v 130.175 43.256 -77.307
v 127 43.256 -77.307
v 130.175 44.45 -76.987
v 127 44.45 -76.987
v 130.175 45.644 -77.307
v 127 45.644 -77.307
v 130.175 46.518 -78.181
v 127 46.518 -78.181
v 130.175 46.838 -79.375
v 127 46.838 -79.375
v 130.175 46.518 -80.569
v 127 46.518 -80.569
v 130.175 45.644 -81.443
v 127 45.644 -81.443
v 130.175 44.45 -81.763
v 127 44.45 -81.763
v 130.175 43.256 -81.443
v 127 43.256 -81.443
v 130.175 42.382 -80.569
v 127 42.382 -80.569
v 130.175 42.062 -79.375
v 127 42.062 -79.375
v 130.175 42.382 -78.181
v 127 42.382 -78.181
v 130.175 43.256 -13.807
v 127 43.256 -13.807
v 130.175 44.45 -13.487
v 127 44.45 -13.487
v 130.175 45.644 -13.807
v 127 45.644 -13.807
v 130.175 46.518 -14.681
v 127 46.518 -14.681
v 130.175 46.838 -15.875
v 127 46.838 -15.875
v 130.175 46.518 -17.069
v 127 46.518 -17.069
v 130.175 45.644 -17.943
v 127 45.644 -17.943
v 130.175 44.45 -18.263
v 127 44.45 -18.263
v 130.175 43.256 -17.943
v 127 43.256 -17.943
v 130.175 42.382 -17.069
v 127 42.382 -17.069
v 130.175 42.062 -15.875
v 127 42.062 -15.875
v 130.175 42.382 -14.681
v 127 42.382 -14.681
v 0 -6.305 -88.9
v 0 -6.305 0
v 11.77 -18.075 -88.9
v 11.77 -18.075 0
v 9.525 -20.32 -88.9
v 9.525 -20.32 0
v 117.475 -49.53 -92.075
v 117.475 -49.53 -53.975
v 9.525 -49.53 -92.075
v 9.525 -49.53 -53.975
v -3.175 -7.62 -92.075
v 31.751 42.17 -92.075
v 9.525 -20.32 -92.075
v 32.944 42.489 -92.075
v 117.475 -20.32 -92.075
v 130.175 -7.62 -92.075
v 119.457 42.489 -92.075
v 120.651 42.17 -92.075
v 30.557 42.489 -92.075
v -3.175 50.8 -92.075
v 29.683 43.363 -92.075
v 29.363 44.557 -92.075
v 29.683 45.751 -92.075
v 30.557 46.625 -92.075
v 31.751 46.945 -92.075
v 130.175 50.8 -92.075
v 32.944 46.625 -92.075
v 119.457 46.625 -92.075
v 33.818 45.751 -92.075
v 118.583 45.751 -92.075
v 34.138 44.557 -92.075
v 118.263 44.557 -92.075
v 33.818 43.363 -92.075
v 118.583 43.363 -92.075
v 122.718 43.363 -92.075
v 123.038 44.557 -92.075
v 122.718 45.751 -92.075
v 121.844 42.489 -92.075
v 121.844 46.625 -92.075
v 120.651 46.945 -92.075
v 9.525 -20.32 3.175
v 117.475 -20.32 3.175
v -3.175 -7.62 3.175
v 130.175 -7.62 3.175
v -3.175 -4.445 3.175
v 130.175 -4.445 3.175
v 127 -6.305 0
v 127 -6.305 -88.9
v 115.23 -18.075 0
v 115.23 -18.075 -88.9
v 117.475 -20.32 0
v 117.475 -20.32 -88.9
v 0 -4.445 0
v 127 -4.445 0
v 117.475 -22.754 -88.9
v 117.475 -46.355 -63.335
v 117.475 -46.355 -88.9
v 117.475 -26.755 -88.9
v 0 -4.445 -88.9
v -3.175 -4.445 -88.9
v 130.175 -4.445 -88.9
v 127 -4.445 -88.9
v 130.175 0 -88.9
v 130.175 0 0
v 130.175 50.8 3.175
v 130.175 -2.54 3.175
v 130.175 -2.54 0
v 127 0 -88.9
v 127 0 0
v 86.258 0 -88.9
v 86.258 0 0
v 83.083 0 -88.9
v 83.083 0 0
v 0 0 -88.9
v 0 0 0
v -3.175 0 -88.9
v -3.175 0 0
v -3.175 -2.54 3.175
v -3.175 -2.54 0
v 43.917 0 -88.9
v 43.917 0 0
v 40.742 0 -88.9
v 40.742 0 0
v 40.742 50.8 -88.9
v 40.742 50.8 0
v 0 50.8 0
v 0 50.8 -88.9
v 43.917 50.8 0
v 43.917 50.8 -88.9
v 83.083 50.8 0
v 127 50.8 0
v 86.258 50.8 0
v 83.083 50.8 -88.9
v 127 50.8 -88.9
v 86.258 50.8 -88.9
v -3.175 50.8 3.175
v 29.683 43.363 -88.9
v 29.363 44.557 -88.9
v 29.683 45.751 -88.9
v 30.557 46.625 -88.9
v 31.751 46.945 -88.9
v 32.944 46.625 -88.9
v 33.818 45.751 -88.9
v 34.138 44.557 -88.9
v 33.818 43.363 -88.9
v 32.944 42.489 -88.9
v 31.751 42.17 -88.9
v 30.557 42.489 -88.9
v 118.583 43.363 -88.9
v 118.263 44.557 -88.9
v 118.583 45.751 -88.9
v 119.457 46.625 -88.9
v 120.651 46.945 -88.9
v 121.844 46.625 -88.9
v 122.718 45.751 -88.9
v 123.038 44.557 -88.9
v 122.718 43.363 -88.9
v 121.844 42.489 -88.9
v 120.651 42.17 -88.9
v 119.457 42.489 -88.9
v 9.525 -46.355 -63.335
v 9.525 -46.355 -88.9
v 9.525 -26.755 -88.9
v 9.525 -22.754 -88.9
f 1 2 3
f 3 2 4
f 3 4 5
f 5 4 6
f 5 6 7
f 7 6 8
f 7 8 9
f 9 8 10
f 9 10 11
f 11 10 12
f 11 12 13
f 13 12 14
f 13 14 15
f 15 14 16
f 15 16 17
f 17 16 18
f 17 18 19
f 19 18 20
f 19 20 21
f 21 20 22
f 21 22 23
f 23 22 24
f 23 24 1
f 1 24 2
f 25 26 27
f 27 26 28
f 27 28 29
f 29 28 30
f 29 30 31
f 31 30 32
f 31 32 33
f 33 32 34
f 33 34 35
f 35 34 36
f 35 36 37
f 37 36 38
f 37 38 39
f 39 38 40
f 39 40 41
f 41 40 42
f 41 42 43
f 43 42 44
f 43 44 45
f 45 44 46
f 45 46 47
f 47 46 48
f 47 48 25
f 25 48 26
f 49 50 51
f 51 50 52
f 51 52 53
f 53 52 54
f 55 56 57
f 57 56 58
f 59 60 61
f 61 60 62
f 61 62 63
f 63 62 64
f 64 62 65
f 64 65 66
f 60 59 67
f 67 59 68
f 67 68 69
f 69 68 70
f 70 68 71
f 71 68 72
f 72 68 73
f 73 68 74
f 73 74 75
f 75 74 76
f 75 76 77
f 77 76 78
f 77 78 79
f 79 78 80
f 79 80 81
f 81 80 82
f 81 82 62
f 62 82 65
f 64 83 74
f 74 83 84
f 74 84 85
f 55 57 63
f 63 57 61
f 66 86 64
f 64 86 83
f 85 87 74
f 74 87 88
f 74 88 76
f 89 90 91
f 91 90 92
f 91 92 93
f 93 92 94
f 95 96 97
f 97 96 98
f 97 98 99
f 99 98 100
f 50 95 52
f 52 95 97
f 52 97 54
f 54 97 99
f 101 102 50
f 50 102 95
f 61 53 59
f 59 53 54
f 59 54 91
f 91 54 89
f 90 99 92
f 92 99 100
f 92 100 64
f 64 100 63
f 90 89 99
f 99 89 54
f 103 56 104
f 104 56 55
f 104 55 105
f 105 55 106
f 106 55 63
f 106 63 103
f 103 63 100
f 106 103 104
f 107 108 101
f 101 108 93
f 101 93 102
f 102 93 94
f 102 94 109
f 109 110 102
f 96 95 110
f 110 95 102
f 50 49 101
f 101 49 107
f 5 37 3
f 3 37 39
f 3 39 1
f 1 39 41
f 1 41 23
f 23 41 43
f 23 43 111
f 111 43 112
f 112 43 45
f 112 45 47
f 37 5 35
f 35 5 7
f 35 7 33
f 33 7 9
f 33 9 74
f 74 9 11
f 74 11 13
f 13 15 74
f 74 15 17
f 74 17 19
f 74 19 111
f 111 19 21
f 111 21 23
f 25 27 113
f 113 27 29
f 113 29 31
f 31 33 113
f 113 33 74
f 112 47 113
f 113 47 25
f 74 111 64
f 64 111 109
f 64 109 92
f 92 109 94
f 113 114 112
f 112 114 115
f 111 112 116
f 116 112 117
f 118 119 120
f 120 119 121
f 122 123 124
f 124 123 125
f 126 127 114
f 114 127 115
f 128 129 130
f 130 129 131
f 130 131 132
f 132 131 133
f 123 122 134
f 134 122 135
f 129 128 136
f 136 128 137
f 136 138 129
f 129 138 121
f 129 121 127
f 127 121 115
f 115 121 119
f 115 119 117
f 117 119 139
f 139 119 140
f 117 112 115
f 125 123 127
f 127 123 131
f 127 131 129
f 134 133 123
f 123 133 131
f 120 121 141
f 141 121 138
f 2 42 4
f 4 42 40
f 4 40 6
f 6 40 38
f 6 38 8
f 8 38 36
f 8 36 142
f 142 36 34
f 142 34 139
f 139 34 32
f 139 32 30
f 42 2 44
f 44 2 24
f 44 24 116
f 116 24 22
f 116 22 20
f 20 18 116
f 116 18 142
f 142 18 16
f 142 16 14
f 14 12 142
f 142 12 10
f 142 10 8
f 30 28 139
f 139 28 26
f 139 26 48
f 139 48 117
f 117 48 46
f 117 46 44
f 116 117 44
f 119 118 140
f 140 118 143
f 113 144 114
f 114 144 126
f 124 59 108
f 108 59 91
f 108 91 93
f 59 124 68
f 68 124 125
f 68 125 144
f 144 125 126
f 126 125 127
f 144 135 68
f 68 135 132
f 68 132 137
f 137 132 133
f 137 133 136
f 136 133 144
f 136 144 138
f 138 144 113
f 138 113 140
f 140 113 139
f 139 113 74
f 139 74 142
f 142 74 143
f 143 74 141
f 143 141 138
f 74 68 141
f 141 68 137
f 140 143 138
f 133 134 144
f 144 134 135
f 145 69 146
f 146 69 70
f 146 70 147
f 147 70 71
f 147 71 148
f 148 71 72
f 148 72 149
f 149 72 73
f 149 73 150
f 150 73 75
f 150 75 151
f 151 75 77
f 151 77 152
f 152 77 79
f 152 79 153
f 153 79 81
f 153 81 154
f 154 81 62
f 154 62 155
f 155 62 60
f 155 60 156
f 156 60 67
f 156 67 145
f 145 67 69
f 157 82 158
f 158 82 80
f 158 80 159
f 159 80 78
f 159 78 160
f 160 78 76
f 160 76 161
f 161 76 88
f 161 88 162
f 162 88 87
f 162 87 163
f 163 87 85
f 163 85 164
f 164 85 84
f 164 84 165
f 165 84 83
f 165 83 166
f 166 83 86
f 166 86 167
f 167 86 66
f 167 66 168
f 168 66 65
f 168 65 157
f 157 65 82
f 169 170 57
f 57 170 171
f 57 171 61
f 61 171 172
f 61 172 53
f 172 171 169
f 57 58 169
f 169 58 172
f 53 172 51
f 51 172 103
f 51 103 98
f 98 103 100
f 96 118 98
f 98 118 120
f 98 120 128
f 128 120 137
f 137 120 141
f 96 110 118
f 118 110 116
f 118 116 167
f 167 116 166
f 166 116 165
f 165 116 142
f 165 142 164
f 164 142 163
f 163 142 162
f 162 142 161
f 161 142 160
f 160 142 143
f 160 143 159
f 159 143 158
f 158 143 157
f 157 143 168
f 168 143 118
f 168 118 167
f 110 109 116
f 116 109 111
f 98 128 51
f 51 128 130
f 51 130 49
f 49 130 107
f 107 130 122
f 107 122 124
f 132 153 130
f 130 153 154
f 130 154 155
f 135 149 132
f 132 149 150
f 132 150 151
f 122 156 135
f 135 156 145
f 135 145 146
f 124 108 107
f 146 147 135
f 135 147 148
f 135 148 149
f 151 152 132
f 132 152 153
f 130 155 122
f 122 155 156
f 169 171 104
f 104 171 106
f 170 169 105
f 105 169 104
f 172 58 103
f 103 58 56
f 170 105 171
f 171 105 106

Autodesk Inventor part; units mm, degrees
ref_plane "YZ Plane" through (0, 0, 0) normal (1, 0, 0) x (0, 1, 0)
ref_plane "XZ Plane" through (0, 0, 0) normal (0, 1, 0) x (-1, 0, 0)
ref_plane "XY Plane" through (0, 0, 0) normal (0, 0, 1) x (1, 0, 0)
sketch "Sketch1" plane through (0, 0, 0) normal (0, 1, 0) x (-1, 0, 0)
  line L0 (0, 0) -> (0, -88.9)
  line L1 (0, -88.9) -> (-127, -88.9)
  line L2 (-127, -88.9) -> (-127, 0)
  line L3 (-127, 0) -> (0, 0)
  line L4 (3.175, -92.075) -> (3.175, 3.175)
  line L5 (3.175, 3.175) -> (-130.175, 3.175)
  line L6 (-130.175, 3.175) -> (-130.175, -92.075)
  line L7 (-130.175, -92.075) -> (3.175, -92.075)
  line L8 (0, 0) -> (0, -88.9)
  line L9 (0, -88.9) -> (-40.7416, -88.9)
  line L10 (-40.7416, -88.9) -> (-40.7416, 0)
  line L11 (-40.7416, 0) -> (0, 0)
  line L12 (-40.7416, 0) -> (-40.7416, -88.9)
  line L13 (-40.7416, -88.9) -> (-43.9166, -88.9)
  line L14 (-43.9166, -88.9) -> (-43.9166, 0)
  line L15 (-43.9166, 0) -> (-40.7416, 0)
  line L16 (-127, -88.9) -> (-127, 0)
  line L17 (-127, 0) -> (-86.2584, 0)
  line L18 (-86.2584, 0) -> (-86.2584, -88.9)
  line L19 (-86.2584, -88.9) -> (-127, -88.9)
  line L20 (-86.2584, 0) -> (-86.2584, -88.9)
  line L21 (-86.2584, -88.9) -> (-83.0834, -88.9)
  line L22 (-83.0834, -88.9) -> (-83.0834, 0)
  line L23 (-83.0834, 0) -> (-86.2584, 0)
  dimension "d0" = 88.9
  dimension "d1" = 127
  dimension "d2" = 3.175
  dimension "d3" = 40.7416
  dimension "d4" = 3.175
  dimension "d5" = 40.7416
  dimension "d6" = 3.175
extrude "Extrusion1" add sketch "Sketch1" along normal blind 50.8 contours L10 L1 L14 L3 | L22 L1 L18 L3 | L7 L6 L5 L4
sketch "Sketch2" plane through (0, 0, 0) normal (0, -1, 0) x (1, 0, 0)
  line L0 (-3.175, 3.175) -> (130.175, 3.175) projected
  line L1 (-3.175, 3.175) -> (130.175, 3.175)
  line L2 (130.175, 3.175) -> (130.175, 0)
  line L3 (130.175, 0) -> (-3.175, 0)
  line L4 (-3.175, 0) -> (-3.175, 3.175)
  point P0 (0, 0)
extrude "Extrusion2" add sketch "Sketch2" along normal blind 2.54
sketch "Sketch3" plane through (0, 0, 0) normal (0, -1, 0) x (1, 0, 0)
  line L0 (130.175, -92.075) -> (-3.175, -92.075) projected
  line L1 (-3.175, -92.075) -> (130.175, -92.075)
  line L2 (130.175, -92.075) -> (130.175, -88.9)
  line L3 (130.175, -88.9) -> (-3.175, -88.9)
  line L4 (-3.175, -88.9) -> (-3.175, -92.075)
  point P0 (0, 0)
  dimension "d11" = 3.175
extrude "Extrusion3" add sketch "Sketch3" along normal blind 7.62
sketch "Sketch4" plane through (0, -7.62, 0) normal (0, -1, 0) x (1, 0, 0)
  line L0 (130.175, -92.075) -> (-3.175, -92.075) projected
  line L1 (-3.175, -92.075) -> (130.175, -92.075)
  line L2 (130.175, -92.075) -> (130.175, 3.175)
  line L3 (130.175, 3.175) -> (-3.175, 3.175)
  line L4 (-3.175, 3.175) -> (-3.175, -92.075)
  line L5 (0, 0) -> (127, 0)
  line L6 (127, 0) -> (127, -88.9)
  line L7 (127, -88.9) -> (0, -88.9)
  line L8 (0, -88.9) -> (0, 0)
  point P0 (0, 0)
extrude "Extrusion4" add sketch "Sketch4" against normal blind 3.175
sketch "Sketch9" plane through (-3.175, -7.62, 3.175) normal (0, 0, 1) x (1, 0, 0)
  line L0 (0, 58.42) -> (0, 0) construction
  line L1 (0, 0) -> (0, -12.7) construction
  line L2 (0, -12.7) -> (0, 0) construction
  line L3 (0, -12.7) -> (12.7, -12.7) construction
  line L4 (0, 0) -> (133.35, 0) construction
  line L5 (133.35, 0) -> (133.35, -12.7) construction
  line L6 (133.35, -12.7) -> (120.65, -12.7) construction
  line L7 (0, 0) -> (12.7, -12.7)
  line L8 (12.7, -12.7) -> (120.65, -12.7)
  line L9 (120.65, -12.7) -> (133.35, 0)
  line L10 (0, 0) -> (133.35, 0)
  point P0 (3.175, 7.62)
  dimension "d28" = 12.7
  dimension "d29" = 12.7
  dimension "d30" = 90
  dimension "d31" = 12.7
  dimension "d32" = 12.7
extrude "Extrusion9" add sketch "Sketch9" against normal blind 3.175
sketch "Sketch10" plane through (130.175, 50.8, -92.075) normal (0, 0, -1) x (-1, 0, 0)
  line L0 (133.35, -58.42) -> (0, -58.42) projected
  line L1 (12.7, -71.12) -> (120.65, -71.12) projected
  line L2 (133.35, -58.42) -> (120.65, -71.12)
  line L3 (0, -58.42) -> (12.7, -71.12) projected
  line L4 (120.65, -71.12) -> (12.7, -71.12)
  line L5 (12.7, -71.12) -> (0, -58.42)
  line L6 (0, -58.42) -> (133.35, -58.42)
  point P0 (130.175, -50.8)
extrude "Extrusion10" add sketch "Sketch10" against normal blind 3.175
sketch "Sketch11" plane through (130.175, -7.62, -88.9) normal (0.7071068, -0.7071068, 0) x (-0.7071068, -0.7071068, 0)
  line L0 (0, 3.175) -> (0, 0) projected
  line L1 (17.9605, 3.175) -> (17.9605, 0) projected
  line L2 (0, 3.175) -> (17.9605, 3.175)
  line L3 (17.9605, 3.175) -> (17.9605, -92.075)
  line L4 (17.9605, -92.075) -> (0, -92.075)
  line L5 (0, -92.075) -> (0, 3.175)
  point P0 (86.6595, -88.9)
extrude "Extrusion11" add sketch "Sketch11" against normal blind 3.175
sketch "Sketch12" plane through (9.525, -20.32, -88.9) normal (-0.7071068, -0.7071068, 0) x (-0.7071068, 0.7071068, 0)
  line L0 (59.2697, 3.175) -> (17.9605, 3.175) projected
  line L1 (17.9605, -92.075) -> (0, -92.075) projected
  line L2 (17.9605, 3.175) -> (17.9605, -92.075)
  line L3 (17.9605, -92.075) -> (0, -92.075)
  line L4 (0, -92.075) -> (0, 3.175)
  line L5 (0, 3.175) -> (17.9605, 3.175)
  point P0 (21.1036, -88.9)
  point P1 (0, -92.075)
extrude "Extrusion12" add sketch "Sketch12" against normal blind 3.175
sketch "Sketch13" plane through (127, 0, -88.9) normal (-1, 0, 0) x (0, 0, 1)
  line L0 (0, 50.8) -> (9.525, 50.8) construction
  line L1 (0, 50.8) -> (88.9, 50.8) construction
  line L2 (9.525, 50.8) -> (9.525, 44.45) construction
  circle A0 centre (9.525, 44.45) radius 2.3876
  line L3 (9.525, 44.45) -> (73.025, 44.45) construction
  circle A1 centre (73.025, 44.45) radius 2.3876
  point P0 (88.9, 0)
  dimension "d46" = 9.525
  dimension "d47" = 6.35
  dimension "d48" = 4.7752
  dimension "d49" = 63.5
  dimension "d50" = 4.7752
extrude "Extrusion13" cut sketch "Sketch13" against normal blind 3.175
sketch "Sketch14" plane through (130.175, 50.8, -92.075) normal (0, 0, -1) x (-1, 0, 0)
  line L0 (0, -53.34) -> (0, 0) construction
  line L1 (0, 0) -> (0, -6.35) construction
  line L2 (0, -6.35) -> (9.5244, -6.2428) construction
  line L3 (9.5244, -6.2428) -> (98.4244, -6.2428) construction
  circle A0 centre (9.5244, -6.2428) radius 2.3876
  circle A1 centre (98.4244, -6.2428) radius 2.3876
  point P0 (130.175, -50.8)
  dimension "d51" = 6.35
  dimension "d52" = 9.525
  dimension "d53" = 88.9
  dimension "d54" = 4.7752
  dimension "d55" = 4.7752
extrude "Extrusion14" cut sketch "Sketch14" against normal blind 3.175
sketch "Sketch15" plane through (9.525, -20.32, -92.075) normal (0, -1, 0) x (1, 0, 0)
  line L0 (120.65, 0) -> (107.95, 0) projected
  line L1 (0, 3.175) -> (107.95, 3.175) projected
  line L2 (107.95, 0) -> (0, 0)
  line L3 (0, 0) -> (0, 3.175)
  line L4 (0, 3.175) -> (107.95, 3.175)
  line L5 (107.95, 3.175) -> (107.95, 0)
  point P0 (-9.525, 92.075)
extrude "Extrusion15" add sketch "Sketch15" along normal blind 29.21
sketch "Sketch16" plane through (9.525, -49.53, -92.075) normal (-1, 0, 0) x (0, 0, 1)
  line L0 (0, 29.21) -> (0, 0) projected
  line L1 (0, 0) -> (38.1, 0)
  line L2 (38.1, 0) -> (0, 29.21)
  line L3 (3.175, 22.7751) -> (3.175, 3.175)
  line L4 (3.175, 3.175) -> (28.7404, 3.175)
  line L5 (28.7404, 3.175) -> (3.175, 22.7751)
  point P0 (92.075, 49.53)
  dimension "d60" = 38.1
  dimension "d61" = 3.175
extrude "Extrusion16" add sketch "Sketch16" against normal blind 107.95
properties part number "BeadCompartments_5"
